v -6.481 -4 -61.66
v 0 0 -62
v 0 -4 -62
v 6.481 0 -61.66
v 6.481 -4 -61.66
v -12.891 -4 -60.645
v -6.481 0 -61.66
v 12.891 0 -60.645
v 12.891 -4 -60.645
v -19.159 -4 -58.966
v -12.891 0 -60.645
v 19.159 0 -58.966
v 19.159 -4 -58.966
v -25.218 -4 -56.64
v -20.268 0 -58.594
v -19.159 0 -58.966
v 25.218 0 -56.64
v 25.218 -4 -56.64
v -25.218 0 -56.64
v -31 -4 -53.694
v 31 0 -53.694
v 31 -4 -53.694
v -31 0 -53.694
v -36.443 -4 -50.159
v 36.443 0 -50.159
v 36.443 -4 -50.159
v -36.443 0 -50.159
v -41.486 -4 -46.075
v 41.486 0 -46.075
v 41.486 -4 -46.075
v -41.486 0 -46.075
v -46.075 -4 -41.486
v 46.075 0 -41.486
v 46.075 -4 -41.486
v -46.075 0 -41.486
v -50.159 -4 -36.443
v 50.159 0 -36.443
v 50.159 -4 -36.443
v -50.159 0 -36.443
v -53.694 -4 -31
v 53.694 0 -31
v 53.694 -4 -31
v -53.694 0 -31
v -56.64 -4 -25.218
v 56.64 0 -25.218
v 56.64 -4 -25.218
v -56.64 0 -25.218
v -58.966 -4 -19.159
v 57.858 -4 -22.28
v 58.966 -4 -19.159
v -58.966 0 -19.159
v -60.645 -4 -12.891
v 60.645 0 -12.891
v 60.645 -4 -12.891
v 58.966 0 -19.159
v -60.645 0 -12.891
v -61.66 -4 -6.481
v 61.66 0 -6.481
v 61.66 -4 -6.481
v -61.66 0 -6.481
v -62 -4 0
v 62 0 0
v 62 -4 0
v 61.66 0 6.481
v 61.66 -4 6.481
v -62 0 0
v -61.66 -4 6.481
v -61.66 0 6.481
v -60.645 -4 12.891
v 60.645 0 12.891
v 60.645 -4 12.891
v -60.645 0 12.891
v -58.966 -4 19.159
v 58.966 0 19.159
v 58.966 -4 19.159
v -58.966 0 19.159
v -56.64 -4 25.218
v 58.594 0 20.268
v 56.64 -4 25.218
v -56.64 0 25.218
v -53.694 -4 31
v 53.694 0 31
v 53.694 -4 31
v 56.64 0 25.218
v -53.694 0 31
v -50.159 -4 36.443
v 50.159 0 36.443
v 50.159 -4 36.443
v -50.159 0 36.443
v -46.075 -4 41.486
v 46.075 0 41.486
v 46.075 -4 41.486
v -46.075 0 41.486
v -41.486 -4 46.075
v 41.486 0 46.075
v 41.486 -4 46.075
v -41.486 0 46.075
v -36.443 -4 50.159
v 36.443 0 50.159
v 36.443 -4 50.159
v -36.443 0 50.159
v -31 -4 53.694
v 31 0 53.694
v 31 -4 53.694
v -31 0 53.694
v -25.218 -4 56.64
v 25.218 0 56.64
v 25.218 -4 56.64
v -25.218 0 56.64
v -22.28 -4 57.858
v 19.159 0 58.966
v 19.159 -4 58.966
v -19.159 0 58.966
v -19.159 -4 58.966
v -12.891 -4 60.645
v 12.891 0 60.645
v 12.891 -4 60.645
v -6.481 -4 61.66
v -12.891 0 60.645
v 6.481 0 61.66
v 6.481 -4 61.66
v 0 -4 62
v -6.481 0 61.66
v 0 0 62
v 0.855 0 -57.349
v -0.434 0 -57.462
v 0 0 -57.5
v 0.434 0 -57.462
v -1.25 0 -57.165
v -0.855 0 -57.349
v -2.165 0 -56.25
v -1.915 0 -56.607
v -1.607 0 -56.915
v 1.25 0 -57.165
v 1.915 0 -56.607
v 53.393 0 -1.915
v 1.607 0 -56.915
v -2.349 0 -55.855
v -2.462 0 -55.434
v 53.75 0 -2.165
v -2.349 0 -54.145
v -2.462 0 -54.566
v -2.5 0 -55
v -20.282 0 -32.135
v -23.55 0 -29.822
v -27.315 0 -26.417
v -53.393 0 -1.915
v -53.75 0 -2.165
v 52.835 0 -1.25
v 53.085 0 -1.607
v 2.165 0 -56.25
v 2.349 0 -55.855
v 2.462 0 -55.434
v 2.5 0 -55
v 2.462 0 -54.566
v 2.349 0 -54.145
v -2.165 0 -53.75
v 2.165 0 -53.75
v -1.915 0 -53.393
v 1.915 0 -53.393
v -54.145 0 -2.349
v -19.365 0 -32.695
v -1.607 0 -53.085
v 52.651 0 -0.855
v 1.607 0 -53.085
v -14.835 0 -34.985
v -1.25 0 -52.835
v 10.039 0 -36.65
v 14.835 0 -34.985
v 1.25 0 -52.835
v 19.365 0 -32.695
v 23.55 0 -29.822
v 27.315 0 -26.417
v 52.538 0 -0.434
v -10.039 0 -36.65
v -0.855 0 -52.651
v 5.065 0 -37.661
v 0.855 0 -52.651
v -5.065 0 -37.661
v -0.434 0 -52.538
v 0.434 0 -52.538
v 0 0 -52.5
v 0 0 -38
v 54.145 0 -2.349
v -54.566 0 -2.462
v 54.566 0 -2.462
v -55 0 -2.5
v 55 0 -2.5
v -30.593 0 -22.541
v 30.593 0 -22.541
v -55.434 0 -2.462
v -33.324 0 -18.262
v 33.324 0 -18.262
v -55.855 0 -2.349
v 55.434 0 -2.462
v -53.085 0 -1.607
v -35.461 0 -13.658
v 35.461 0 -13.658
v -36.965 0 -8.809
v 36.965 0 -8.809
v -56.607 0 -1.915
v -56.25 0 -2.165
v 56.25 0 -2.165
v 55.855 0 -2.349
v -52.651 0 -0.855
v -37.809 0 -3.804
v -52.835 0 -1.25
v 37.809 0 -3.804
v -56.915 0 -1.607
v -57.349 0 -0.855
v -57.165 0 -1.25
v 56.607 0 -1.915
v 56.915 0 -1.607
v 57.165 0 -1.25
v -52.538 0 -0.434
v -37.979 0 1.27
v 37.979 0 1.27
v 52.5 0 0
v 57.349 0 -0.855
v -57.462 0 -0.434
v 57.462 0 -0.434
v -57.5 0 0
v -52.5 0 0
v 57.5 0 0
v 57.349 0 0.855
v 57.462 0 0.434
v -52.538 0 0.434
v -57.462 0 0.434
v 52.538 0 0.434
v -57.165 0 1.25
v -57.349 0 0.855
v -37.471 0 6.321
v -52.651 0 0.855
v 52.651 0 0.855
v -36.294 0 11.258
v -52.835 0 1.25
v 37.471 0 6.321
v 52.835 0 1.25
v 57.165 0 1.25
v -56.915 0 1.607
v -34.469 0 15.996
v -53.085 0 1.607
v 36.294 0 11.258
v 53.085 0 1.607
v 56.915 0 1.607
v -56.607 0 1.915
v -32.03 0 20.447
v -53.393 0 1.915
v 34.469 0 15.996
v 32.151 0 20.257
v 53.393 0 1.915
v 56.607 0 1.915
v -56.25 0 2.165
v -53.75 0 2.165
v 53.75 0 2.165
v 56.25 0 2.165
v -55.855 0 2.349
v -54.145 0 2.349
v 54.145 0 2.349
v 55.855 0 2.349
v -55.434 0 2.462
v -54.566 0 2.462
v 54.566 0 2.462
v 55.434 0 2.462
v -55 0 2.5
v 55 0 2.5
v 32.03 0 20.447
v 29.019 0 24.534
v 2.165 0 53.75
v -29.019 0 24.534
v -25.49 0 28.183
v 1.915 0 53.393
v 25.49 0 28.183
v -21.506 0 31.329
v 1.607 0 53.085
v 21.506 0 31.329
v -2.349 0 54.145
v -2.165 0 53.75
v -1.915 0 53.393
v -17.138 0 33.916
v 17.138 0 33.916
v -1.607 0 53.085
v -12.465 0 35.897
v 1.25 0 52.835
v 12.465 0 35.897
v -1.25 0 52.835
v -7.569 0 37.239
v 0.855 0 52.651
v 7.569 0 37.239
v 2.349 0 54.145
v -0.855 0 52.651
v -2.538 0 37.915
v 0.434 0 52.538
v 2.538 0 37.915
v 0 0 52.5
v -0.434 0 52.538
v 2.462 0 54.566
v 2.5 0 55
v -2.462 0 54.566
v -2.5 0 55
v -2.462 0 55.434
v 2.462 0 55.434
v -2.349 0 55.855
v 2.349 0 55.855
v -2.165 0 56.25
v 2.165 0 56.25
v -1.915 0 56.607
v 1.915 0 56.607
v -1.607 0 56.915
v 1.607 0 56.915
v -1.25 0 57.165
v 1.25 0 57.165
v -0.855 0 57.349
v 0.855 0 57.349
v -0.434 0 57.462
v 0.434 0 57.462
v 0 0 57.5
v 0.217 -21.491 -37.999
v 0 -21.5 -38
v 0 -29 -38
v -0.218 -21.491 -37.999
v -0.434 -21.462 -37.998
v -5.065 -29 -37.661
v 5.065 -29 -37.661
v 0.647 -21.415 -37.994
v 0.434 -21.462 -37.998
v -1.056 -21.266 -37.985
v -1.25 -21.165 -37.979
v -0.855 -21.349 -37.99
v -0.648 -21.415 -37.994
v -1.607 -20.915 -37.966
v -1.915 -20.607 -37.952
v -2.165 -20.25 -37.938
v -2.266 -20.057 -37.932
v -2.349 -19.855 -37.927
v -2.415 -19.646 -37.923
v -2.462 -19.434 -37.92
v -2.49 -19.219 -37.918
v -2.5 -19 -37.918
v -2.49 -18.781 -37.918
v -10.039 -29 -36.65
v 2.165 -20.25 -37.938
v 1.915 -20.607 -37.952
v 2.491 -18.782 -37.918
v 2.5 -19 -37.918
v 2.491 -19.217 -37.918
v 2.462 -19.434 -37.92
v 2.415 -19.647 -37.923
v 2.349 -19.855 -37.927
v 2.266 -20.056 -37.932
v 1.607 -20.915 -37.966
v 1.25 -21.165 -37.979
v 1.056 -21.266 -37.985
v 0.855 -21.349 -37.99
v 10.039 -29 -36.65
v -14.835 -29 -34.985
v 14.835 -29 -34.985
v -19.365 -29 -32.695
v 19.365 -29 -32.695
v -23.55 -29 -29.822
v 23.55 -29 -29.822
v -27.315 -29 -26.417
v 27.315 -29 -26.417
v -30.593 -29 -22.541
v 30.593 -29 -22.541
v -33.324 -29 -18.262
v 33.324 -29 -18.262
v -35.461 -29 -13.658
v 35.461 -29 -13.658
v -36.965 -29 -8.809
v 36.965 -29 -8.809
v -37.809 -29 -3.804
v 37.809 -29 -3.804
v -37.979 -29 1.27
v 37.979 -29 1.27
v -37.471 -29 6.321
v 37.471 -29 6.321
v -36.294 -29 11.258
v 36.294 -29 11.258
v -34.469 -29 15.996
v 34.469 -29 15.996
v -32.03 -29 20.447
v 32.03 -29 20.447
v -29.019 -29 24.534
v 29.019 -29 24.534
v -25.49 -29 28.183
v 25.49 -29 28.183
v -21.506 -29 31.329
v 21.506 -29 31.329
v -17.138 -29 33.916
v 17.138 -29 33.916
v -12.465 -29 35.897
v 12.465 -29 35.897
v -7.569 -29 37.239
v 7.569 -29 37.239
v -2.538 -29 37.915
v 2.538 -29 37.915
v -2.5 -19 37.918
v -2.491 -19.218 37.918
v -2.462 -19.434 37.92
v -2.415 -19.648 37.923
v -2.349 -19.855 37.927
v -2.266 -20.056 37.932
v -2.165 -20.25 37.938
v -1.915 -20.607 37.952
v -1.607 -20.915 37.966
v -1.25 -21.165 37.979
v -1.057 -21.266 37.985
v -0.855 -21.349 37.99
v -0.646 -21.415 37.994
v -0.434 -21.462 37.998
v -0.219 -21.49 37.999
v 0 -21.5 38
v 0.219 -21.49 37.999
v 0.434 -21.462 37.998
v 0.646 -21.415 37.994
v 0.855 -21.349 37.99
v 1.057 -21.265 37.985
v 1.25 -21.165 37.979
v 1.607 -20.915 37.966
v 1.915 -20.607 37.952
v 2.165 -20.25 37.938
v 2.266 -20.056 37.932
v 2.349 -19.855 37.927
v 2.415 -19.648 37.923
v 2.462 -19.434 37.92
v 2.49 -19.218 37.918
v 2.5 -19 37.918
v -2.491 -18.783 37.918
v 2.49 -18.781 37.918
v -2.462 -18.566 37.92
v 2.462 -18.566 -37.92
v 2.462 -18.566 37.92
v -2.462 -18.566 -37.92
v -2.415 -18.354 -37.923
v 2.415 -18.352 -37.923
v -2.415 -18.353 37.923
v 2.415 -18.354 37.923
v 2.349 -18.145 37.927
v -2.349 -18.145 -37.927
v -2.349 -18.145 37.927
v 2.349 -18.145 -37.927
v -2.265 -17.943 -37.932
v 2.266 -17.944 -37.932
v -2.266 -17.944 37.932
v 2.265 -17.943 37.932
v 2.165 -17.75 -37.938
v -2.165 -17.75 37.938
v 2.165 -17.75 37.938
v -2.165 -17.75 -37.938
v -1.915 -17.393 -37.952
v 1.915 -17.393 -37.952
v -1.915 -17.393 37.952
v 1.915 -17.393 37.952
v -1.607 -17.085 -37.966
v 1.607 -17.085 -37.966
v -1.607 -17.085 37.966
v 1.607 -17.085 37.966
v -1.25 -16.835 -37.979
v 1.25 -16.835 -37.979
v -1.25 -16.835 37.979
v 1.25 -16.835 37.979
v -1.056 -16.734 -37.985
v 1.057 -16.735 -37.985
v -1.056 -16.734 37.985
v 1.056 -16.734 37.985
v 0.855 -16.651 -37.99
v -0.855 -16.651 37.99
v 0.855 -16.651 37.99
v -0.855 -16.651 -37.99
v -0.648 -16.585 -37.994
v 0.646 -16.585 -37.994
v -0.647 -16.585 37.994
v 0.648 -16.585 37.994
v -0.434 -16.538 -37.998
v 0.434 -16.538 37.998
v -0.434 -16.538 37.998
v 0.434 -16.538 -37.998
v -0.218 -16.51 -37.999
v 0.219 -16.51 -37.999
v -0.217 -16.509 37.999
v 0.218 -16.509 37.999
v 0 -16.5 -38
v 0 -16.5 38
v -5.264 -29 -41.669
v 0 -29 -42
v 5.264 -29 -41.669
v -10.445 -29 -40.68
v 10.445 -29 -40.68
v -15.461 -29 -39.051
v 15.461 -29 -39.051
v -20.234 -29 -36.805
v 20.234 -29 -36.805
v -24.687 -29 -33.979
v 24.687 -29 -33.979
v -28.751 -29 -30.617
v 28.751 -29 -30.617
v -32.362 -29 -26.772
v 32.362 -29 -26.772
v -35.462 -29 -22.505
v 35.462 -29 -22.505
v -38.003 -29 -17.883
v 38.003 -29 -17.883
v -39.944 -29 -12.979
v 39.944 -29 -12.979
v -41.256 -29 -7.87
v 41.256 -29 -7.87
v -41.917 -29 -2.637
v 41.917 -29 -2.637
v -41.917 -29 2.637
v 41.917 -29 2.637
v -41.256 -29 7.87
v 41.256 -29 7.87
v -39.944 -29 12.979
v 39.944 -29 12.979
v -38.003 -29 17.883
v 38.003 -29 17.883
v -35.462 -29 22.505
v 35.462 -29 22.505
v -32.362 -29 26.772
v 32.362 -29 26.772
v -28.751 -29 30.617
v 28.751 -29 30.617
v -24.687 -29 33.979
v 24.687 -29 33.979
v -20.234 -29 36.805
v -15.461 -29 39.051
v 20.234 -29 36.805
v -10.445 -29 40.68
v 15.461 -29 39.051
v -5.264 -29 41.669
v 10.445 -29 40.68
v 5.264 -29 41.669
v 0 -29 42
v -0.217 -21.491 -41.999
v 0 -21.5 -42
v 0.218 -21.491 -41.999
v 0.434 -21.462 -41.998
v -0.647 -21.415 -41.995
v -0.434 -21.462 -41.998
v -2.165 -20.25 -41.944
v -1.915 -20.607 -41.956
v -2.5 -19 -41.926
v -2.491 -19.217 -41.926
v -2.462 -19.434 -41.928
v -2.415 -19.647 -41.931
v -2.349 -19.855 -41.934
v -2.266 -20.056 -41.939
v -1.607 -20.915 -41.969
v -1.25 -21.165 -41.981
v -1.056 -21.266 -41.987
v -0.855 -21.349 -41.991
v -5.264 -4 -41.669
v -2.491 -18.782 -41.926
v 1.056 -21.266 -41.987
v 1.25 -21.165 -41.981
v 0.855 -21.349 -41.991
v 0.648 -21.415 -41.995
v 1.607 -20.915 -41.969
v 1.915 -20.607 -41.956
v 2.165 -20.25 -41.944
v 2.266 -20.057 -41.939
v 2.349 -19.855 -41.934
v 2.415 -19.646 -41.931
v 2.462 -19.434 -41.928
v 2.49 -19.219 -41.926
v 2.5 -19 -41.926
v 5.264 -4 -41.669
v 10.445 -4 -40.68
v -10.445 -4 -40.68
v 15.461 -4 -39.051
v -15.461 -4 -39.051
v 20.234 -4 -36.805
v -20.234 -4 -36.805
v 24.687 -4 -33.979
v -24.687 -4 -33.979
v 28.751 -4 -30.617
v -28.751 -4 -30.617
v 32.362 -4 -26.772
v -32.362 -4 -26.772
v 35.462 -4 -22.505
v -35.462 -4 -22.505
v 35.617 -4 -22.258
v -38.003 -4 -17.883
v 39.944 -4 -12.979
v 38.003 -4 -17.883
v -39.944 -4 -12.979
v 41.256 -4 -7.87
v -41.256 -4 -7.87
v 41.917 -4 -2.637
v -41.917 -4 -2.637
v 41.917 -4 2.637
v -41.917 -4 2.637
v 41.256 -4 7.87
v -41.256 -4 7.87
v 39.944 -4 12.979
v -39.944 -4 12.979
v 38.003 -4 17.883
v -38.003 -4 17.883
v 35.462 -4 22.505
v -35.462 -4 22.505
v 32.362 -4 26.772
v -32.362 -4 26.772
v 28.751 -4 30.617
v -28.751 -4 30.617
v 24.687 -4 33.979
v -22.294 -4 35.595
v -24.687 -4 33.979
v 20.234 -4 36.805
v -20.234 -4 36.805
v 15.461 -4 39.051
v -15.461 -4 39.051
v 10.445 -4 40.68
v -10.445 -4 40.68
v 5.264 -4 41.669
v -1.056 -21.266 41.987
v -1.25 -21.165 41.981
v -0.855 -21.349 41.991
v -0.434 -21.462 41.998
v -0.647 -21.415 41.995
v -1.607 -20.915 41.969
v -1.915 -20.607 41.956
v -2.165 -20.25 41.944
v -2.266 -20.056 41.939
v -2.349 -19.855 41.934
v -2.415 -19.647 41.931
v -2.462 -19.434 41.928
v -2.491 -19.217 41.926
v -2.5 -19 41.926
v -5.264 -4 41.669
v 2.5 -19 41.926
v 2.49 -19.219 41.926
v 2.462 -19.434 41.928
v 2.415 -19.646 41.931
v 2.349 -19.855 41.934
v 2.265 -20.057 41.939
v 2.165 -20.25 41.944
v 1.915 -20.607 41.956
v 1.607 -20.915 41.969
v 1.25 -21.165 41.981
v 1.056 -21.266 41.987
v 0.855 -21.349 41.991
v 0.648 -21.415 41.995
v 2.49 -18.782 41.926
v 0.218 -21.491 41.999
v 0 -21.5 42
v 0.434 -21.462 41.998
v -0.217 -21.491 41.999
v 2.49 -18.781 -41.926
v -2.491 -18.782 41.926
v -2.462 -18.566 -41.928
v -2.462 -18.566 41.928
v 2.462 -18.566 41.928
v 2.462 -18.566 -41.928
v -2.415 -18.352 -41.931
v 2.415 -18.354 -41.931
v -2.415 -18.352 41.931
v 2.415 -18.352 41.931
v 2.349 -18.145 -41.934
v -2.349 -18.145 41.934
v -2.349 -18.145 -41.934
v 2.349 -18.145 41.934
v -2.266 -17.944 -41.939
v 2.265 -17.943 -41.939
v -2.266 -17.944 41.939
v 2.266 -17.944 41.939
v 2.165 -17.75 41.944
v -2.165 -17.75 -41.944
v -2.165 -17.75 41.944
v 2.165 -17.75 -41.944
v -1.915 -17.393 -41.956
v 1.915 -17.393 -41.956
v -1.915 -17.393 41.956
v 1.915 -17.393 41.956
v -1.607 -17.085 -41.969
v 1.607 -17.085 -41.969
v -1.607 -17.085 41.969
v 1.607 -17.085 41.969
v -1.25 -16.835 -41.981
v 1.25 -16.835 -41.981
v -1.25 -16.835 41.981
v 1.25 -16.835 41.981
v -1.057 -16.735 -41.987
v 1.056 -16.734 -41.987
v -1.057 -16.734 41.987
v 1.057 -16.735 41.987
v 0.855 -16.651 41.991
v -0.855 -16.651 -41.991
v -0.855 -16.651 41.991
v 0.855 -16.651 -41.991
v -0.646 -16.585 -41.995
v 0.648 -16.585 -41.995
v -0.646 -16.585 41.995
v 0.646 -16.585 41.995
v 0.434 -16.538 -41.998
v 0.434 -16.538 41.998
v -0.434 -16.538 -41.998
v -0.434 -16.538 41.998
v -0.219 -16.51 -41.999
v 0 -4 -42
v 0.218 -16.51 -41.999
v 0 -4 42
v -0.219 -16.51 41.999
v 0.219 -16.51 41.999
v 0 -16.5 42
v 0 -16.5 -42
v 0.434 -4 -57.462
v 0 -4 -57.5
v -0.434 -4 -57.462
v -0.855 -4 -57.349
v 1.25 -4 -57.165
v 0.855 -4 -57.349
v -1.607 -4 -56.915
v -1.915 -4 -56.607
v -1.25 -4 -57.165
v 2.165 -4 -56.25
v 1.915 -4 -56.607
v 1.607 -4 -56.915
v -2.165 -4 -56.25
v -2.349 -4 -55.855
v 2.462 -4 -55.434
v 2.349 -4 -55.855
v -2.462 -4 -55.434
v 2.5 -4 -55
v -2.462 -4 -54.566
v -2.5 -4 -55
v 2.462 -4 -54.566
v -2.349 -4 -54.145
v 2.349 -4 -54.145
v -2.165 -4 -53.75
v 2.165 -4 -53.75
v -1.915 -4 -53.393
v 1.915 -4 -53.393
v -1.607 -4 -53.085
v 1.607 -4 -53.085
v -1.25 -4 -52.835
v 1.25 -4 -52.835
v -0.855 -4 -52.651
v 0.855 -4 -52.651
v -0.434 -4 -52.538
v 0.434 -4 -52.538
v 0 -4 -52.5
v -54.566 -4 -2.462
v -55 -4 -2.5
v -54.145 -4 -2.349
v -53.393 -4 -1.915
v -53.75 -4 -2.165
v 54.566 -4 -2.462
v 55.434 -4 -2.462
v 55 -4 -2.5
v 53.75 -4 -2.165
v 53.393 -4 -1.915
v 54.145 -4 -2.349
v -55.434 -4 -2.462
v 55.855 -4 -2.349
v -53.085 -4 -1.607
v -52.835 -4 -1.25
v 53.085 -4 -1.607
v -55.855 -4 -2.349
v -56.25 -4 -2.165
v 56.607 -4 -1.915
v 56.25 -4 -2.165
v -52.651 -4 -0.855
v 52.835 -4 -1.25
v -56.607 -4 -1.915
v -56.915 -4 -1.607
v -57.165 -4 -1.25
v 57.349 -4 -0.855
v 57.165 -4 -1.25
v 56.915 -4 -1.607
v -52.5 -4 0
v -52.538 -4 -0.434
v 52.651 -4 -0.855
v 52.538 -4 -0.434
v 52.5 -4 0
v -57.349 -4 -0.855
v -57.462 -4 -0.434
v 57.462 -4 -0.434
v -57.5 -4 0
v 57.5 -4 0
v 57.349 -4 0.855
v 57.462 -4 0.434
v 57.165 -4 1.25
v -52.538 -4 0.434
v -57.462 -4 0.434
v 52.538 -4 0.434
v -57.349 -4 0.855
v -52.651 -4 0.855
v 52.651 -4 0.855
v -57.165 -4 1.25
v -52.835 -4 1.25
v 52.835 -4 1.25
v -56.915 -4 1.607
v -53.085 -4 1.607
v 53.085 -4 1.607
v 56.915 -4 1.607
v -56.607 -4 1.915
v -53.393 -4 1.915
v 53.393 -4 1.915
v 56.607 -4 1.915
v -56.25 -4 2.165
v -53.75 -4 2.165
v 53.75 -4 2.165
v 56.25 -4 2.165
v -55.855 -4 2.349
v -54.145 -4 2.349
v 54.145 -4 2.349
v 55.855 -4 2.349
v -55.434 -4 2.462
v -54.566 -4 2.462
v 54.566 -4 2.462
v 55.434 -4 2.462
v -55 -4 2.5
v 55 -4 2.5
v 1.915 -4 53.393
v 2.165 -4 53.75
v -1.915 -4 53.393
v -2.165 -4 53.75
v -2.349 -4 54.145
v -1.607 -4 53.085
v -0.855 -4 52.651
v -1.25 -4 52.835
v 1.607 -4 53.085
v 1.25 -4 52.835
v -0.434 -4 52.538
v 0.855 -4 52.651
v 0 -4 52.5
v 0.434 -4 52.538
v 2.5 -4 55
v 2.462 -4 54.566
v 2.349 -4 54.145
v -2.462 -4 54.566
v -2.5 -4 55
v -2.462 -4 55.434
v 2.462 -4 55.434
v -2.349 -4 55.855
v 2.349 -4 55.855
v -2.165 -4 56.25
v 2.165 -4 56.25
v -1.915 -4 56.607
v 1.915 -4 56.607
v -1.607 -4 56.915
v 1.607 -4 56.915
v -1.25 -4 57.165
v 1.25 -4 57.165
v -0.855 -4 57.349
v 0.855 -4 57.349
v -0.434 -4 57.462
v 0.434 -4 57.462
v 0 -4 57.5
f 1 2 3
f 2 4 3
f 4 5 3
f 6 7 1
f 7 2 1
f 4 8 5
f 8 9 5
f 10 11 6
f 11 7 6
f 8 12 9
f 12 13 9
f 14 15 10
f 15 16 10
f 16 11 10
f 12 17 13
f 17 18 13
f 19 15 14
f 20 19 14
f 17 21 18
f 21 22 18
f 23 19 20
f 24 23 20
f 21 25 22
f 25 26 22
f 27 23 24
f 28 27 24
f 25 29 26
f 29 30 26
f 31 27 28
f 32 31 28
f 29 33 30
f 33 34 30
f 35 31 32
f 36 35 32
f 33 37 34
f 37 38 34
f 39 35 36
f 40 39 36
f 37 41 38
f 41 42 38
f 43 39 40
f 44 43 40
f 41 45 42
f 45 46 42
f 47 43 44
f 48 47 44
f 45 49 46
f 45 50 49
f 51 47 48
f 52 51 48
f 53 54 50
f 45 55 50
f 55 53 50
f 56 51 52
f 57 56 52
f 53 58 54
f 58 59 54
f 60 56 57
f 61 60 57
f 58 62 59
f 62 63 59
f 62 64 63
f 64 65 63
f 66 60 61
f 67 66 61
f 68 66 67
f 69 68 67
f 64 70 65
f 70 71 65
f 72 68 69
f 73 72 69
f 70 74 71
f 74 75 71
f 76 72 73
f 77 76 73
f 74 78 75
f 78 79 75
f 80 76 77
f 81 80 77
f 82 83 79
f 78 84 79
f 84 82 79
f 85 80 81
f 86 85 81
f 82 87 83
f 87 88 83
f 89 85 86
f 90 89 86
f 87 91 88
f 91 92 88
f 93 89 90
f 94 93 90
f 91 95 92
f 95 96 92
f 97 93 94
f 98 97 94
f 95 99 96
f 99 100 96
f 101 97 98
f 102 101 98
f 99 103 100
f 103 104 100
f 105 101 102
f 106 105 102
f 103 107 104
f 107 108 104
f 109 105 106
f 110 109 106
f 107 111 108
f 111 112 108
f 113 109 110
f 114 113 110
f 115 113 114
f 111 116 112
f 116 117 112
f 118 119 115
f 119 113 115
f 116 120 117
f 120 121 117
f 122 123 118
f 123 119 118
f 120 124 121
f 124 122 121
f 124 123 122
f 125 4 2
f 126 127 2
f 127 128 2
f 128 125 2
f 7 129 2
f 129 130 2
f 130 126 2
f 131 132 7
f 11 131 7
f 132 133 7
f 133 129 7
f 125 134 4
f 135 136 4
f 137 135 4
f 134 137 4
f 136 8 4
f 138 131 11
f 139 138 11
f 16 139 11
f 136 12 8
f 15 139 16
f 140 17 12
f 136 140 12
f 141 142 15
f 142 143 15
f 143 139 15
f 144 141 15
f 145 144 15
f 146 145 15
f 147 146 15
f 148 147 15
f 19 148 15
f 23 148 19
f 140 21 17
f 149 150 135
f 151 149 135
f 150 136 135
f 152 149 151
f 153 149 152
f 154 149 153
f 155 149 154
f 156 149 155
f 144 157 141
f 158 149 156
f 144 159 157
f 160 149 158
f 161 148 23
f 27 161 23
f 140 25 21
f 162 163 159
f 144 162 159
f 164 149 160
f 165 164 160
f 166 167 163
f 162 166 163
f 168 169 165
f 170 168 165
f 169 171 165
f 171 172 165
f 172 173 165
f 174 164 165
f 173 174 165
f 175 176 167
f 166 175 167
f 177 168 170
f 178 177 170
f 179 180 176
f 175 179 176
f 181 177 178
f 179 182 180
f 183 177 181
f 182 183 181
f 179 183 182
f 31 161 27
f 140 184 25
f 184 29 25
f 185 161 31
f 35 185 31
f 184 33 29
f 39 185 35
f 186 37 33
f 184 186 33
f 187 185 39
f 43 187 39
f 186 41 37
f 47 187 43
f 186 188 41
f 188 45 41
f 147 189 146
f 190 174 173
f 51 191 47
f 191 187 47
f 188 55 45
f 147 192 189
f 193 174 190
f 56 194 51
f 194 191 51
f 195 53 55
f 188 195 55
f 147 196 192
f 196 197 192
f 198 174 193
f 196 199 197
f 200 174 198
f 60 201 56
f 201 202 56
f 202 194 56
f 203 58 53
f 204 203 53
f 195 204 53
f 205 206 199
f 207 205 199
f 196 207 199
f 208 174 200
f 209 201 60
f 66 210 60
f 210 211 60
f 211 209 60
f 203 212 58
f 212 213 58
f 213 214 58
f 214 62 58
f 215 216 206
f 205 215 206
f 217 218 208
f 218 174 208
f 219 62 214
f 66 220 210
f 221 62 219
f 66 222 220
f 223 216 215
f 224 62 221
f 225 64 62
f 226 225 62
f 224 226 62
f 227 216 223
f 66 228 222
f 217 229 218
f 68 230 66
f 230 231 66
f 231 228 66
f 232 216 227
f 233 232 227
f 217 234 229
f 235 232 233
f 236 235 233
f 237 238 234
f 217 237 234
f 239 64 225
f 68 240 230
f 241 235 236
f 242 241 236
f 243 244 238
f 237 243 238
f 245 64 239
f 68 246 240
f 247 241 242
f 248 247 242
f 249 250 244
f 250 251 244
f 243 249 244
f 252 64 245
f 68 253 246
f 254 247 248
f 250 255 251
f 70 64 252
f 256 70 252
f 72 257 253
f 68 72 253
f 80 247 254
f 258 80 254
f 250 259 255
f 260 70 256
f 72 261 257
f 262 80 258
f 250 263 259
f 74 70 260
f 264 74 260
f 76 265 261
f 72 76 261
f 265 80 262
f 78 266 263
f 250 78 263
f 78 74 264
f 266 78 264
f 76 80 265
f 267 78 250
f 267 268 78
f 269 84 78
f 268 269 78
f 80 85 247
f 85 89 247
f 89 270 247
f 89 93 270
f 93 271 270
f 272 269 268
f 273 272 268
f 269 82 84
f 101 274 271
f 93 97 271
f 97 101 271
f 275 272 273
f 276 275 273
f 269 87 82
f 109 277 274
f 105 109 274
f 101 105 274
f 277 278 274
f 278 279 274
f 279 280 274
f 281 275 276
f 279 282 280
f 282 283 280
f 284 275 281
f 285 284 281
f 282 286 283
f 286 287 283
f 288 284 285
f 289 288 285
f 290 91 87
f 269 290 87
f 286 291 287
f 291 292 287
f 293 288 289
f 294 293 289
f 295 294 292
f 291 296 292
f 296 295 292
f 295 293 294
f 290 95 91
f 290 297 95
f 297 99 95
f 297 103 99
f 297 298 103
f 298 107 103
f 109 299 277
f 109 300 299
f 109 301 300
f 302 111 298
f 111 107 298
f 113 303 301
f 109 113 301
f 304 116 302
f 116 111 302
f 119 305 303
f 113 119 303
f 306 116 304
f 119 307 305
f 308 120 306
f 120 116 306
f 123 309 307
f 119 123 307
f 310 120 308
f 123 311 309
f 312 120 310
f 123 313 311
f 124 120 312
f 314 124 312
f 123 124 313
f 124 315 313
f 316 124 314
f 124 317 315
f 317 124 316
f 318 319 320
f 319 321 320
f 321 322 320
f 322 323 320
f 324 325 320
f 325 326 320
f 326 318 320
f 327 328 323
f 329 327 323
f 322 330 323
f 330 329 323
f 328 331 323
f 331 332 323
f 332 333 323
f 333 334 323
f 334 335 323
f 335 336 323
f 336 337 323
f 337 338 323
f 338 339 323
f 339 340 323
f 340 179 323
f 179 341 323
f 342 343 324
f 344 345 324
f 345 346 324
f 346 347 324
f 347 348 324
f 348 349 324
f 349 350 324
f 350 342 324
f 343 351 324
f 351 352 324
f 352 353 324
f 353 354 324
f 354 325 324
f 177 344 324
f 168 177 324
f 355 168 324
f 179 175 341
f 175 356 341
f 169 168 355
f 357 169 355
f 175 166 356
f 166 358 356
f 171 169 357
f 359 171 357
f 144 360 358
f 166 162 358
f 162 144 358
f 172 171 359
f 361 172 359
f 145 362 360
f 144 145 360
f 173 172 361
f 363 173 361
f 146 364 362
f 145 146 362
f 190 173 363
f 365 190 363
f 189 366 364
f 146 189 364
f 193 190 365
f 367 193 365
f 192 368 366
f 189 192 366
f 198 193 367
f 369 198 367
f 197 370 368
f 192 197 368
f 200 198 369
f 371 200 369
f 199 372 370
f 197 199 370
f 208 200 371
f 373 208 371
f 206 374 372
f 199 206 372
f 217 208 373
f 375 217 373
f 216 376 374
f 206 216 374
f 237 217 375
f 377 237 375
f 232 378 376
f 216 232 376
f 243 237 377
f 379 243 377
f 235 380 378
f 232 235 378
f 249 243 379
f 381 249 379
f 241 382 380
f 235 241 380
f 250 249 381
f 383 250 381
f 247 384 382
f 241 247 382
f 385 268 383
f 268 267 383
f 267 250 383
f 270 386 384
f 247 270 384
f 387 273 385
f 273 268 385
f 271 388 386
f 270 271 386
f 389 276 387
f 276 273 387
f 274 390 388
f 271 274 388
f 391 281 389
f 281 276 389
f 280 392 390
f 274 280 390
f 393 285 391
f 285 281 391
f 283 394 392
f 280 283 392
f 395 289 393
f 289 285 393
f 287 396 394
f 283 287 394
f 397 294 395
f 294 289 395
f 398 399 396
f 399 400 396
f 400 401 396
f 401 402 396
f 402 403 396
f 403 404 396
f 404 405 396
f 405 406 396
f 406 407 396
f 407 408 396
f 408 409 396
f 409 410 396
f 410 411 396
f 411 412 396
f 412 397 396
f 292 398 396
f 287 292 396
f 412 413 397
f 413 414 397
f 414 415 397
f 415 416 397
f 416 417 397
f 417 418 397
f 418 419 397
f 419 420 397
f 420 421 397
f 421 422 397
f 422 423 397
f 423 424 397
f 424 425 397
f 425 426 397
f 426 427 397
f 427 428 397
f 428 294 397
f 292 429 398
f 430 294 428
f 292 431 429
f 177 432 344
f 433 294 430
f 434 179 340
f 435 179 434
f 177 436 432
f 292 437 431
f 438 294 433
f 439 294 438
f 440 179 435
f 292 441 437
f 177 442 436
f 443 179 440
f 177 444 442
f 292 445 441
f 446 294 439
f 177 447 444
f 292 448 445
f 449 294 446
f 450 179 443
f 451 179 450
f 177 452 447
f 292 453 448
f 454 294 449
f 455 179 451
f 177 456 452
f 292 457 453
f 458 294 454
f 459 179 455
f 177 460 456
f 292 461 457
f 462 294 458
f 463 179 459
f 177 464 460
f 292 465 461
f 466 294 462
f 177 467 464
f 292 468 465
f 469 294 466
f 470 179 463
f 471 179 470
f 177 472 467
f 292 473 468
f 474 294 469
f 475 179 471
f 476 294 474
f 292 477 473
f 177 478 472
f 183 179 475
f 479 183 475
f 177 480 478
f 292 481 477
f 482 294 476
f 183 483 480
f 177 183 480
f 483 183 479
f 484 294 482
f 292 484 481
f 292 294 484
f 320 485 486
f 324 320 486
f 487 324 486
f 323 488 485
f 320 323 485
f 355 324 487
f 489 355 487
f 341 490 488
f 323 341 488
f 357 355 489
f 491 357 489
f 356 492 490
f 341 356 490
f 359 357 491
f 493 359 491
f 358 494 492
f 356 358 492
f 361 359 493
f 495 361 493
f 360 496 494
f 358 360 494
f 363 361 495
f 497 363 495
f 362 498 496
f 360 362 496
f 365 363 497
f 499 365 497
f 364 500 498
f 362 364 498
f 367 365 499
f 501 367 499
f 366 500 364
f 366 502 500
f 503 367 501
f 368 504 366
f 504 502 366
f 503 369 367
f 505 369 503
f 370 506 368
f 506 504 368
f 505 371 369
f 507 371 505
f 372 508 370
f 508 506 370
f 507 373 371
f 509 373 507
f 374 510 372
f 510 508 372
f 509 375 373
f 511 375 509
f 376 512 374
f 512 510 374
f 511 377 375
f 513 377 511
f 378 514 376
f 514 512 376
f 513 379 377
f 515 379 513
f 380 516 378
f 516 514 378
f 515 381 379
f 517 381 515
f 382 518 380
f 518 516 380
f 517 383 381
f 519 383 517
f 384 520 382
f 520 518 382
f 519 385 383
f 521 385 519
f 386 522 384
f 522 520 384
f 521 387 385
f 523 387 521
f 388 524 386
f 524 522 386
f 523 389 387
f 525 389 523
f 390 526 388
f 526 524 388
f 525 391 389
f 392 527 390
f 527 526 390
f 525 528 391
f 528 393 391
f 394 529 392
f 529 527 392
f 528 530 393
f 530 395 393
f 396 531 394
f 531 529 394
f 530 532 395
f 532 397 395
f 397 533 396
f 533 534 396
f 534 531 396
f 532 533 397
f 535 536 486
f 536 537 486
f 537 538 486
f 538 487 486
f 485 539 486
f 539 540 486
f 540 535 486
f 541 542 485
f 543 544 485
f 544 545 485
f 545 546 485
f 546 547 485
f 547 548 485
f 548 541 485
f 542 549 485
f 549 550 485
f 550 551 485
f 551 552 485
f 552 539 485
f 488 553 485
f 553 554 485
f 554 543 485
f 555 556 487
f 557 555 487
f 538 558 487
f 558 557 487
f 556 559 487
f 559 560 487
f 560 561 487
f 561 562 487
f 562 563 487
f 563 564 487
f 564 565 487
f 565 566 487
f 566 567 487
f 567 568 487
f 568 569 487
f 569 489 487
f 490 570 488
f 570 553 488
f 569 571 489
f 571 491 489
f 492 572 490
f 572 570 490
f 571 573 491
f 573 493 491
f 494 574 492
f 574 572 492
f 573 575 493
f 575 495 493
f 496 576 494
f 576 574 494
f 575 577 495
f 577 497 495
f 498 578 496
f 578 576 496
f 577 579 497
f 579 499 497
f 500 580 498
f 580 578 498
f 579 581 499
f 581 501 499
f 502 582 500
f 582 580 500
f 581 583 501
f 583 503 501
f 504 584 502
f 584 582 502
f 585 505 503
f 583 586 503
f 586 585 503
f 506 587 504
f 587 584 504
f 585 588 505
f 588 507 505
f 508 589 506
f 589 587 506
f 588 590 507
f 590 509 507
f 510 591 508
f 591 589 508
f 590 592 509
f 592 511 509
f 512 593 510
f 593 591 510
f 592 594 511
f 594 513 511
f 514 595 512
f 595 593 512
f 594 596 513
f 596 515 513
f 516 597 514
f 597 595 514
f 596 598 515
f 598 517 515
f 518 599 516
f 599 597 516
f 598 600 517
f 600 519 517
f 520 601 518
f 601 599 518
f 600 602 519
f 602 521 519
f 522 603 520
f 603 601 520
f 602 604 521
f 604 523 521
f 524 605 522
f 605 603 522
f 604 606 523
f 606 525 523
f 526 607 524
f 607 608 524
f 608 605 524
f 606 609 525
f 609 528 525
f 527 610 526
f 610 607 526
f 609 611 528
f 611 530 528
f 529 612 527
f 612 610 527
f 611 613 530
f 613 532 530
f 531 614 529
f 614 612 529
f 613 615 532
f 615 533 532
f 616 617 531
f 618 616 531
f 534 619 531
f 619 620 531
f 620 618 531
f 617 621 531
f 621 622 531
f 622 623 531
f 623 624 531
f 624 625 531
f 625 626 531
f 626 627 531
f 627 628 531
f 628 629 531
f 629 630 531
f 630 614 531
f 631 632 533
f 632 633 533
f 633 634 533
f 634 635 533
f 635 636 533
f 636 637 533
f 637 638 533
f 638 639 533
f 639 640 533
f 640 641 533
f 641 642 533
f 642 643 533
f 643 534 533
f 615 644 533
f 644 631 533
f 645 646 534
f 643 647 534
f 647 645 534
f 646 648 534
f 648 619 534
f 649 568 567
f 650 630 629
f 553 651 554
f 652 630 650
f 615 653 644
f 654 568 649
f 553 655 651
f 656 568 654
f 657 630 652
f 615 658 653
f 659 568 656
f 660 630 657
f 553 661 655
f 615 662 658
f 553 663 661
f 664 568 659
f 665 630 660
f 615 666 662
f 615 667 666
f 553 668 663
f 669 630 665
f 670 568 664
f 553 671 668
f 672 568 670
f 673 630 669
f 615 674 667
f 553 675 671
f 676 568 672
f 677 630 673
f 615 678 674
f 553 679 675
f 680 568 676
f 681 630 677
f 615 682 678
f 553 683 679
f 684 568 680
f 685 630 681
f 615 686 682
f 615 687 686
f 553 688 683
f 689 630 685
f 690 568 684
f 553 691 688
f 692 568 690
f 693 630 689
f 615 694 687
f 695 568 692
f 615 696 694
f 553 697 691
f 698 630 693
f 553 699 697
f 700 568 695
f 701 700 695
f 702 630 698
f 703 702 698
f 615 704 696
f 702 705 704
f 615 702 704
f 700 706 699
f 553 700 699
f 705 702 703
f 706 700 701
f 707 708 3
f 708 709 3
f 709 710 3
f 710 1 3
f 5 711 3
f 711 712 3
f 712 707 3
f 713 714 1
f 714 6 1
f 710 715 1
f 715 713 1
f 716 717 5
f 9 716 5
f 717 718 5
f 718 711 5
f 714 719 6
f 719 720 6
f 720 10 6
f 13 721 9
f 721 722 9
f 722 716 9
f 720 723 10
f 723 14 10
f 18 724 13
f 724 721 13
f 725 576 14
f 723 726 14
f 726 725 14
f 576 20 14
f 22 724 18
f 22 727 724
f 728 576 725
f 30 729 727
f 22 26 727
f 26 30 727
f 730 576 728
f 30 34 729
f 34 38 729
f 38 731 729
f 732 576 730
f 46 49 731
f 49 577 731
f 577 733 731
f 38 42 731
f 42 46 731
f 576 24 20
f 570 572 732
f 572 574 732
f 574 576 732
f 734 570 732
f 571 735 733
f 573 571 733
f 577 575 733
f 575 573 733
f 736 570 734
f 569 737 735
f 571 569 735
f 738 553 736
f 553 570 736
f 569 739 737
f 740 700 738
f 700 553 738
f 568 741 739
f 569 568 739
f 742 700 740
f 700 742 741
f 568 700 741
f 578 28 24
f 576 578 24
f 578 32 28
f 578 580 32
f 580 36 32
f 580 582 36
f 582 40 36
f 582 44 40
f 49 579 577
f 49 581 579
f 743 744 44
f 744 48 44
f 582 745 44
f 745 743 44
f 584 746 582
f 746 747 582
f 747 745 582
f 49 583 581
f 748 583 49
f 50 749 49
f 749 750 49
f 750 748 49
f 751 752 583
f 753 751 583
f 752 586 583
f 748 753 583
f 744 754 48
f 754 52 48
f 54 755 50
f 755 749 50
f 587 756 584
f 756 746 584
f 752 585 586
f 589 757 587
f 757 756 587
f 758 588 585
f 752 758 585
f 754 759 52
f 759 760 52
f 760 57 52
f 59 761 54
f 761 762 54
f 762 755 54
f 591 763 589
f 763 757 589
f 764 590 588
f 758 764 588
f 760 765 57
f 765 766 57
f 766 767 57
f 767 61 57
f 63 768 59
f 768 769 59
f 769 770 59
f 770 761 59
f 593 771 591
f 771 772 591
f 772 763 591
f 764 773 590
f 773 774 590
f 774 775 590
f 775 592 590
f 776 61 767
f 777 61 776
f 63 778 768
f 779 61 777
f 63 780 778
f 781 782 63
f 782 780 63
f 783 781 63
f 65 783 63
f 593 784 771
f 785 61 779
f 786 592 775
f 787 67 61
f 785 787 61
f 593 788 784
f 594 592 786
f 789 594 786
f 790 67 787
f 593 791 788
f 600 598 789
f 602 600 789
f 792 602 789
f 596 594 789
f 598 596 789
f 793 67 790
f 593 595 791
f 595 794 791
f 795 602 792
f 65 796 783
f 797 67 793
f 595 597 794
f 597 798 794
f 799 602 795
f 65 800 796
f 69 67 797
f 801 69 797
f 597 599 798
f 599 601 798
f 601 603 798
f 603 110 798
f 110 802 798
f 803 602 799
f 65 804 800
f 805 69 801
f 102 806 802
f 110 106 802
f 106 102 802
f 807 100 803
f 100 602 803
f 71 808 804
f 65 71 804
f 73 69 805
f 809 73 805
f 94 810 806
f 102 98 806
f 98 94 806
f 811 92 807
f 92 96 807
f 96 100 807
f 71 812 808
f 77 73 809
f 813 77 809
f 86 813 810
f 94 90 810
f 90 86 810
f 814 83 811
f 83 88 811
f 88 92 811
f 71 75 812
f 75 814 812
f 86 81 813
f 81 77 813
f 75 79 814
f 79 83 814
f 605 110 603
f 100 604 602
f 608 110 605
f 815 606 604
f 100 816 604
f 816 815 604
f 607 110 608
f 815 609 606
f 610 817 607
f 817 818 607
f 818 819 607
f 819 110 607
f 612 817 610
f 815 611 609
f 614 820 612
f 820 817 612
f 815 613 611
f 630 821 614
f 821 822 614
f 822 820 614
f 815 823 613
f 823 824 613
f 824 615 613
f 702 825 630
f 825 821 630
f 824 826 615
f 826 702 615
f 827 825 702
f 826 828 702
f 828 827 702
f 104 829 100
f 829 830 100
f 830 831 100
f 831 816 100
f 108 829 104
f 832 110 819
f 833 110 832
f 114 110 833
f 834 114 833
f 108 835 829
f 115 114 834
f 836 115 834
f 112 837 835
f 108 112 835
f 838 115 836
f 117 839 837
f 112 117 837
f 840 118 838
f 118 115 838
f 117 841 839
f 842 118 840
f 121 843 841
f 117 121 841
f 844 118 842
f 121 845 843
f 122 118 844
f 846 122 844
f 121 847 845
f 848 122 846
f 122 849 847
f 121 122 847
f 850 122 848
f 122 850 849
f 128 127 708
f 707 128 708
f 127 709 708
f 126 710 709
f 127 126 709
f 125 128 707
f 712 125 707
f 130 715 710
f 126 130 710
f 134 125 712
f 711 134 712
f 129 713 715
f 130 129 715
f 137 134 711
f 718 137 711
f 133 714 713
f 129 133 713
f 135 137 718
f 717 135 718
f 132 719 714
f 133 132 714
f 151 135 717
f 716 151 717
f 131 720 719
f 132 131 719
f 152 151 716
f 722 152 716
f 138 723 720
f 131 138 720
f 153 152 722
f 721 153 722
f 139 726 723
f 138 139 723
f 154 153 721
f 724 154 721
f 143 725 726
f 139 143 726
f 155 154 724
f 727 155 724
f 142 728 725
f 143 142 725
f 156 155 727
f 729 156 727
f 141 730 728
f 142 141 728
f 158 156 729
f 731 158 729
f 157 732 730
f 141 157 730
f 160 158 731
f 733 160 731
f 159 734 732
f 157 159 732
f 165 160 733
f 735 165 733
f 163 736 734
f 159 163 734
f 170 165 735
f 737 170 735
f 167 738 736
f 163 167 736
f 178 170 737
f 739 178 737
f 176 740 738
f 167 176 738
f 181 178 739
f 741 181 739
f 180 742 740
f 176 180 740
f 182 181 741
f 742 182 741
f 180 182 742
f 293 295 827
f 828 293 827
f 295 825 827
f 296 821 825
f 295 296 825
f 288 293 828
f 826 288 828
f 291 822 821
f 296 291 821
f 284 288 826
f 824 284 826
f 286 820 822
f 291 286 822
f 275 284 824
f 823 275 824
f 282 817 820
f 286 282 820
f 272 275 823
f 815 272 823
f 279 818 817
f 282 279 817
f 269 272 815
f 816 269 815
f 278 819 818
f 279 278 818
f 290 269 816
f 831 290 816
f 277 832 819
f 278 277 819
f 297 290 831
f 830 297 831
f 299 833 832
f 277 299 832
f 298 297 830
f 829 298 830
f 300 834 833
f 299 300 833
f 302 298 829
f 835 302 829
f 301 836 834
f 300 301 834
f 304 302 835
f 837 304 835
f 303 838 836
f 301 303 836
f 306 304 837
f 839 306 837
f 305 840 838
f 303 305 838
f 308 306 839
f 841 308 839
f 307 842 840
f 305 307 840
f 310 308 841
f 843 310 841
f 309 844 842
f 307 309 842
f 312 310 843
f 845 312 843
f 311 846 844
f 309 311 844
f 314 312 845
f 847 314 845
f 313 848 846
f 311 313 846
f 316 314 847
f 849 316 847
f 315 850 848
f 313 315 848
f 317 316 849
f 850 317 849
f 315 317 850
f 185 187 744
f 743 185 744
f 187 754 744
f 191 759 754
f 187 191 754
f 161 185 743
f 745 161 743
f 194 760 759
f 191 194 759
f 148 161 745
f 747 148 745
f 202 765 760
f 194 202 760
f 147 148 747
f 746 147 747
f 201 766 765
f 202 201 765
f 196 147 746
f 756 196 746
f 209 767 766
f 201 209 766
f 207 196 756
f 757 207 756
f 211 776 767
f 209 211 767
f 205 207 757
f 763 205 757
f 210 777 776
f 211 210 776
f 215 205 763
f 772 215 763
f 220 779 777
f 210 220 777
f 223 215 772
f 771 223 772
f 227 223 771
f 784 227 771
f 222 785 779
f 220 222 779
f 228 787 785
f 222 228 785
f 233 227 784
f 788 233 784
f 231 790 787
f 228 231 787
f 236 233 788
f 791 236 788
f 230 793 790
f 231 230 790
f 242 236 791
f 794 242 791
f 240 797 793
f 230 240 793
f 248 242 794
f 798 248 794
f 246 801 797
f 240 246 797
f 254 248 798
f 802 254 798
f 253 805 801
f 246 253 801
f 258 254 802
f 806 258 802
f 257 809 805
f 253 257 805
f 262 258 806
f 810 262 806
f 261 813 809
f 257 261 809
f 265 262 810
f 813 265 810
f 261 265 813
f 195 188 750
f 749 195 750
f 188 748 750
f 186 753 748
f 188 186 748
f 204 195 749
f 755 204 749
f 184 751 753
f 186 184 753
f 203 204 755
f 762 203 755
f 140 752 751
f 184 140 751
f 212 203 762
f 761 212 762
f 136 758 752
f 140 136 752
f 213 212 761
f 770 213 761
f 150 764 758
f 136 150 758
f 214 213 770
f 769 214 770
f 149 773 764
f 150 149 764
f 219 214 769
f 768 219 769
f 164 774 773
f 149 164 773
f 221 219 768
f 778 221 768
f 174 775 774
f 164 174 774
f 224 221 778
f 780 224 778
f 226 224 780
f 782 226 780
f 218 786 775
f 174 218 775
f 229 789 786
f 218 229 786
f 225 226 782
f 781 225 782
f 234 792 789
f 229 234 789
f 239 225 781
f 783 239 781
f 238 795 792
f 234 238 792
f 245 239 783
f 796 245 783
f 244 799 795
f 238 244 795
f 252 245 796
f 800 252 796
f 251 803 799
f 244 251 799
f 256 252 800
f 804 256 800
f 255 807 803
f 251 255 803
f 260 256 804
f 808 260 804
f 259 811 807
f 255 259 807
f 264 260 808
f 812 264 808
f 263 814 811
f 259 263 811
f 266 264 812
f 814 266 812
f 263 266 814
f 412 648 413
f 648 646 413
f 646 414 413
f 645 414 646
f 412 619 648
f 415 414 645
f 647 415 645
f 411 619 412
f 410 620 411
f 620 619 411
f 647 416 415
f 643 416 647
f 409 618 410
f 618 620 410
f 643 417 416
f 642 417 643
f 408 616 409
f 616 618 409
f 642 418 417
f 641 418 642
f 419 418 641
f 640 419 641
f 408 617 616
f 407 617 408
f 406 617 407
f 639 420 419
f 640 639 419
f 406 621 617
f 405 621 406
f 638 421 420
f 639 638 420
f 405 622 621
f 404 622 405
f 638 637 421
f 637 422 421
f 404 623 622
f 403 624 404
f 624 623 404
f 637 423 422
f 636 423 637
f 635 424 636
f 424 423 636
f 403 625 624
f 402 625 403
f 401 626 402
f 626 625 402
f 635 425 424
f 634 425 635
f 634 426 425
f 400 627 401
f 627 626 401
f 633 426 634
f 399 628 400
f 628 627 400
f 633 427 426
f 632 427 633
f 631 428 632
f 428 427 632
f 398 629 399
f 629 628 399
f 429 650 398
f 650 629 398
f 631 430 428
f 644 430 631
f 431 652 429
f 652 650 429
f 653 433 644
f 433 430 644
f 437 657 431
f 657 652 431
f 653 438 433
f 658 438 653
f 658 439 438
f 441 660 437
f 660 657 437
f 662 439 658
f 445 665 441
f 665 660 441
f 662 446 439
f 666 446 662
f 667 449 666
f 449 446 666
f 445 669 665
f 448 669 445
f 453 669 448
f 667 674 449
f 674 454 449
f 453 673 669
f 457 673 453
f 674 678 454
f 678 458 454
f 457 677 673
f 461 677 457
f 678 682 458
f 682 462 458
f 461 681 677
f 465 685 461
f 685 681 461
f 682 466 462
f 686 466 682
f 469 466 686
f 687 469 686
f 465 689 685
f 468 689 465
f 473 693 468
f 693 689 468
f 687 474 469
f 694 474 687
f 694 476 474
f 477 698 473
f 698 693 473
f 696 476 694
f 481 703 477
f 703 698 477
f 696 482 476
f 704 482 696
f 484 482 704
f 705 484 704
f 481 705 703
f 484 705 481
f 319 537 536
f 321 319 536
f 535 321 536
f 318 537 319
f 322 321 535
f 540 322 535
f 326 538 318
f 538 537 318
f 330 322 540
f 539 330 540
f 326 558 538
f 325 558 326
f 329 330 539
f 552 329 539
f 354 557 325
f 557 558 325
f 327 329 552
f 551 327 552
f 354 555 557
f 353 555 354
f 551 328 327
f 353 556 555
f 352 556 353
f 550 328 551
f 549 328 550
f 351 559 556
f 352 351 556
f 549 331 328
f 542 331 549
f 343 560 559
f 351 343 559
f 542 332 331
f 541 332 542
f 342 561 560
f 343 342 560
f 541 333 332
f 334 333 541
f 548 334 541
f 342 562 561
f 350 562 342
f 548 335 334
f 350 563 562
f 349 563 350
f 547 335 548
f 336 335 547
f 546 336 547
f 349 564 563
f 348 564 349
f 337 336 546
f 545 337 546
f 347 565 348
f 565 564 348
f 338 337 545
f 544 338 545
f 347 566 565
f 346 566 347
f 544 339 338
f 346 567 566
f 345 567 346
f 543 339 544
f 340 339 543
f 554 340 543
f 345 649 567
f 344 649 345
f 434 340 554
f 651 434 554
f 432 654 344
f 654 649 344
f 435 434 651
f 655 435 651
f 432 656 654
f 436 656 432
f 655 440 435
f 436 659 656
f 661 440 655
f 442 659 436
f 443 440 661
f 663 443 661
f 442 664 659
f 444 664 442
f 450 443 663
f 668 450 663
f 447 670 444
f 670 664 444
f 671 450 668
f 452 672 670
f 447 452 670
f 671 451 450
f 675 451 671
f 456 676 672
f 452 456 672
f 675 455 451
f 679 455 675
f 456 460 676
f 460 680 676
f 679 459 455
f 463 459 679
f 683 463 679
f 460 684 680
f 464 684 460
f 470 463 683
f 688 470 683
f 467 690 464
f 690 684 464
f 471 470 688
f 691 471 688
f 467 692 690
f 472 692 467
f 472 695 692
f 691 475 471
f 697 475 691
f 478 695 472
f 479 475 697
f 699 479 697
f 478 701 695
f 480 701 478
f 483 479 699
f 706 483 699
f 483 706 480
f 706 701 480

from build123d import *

# Parameters (mm, degrees)
SKETCH2_R               = 2.5
CUT_EXTRUDE3_DEPTH      = 92.175654645
CUT_EXTRUDE6_DEPTH      = 93.352585237
CUT_EXTRUDE6_DEPTH_BACK = 93.352585237
SKETCH6_R               = 2.5


with BuildPart() as part:
    # Sketch1 → Revolve1 (revolve)
    with BuildSketch(Plane.XY, mode=Mode.PRIVATE) as revolve1_sk:
        Polygon((-42, -29), (-42, -4), (-62, -4), (-62, 0), (-38, 0), (-38, -29), align=None)
    revolve(revolve1_sk.sketch.rotate(Axis((0, -100.5, 0), (0, 1, 0)), 270), axis=Axis((0, -100.5, 0), (0, 1, 0)))

    # Sketch2 → Cut-Extrude3 (cut, through all)
    with BuildSketch(Plane.XZ.offset(4)):
        with Locations(Location((55, 0, 0), (0, 0, 270))):
            Circle(SKETCH2_R)
        with Locations(Location((-55, 0, 0), (0, 0, 270))):
            Circle(SKETCH2_R)
        with Locations(Location((0, 55, 0), (0, 0, 270))):
            Circle(SKETCH2_R)
        with Locations(Location((0, -55, 0), (0, 0, 270))):
            Circle(SKETCH2_R)
    extrude(amount=-CUT_EXTRUDE3_DEPTH, mode=Mode.SUBTRACT)

    # Sketch6 → Cut-Extrude6 (cut, two sides: drawn at the far end of the back side and taken through both)
    with BuildSketch(Plane.XY.offset(-CUT_EXTRUDE6_DEPTH_BACK)):
        with Locations((0, -19)):
            Circle(SKETCH6_R)
    extrude(amount=CUT_EXTRUDE6_DEPTH + CUT_EXTRUDE6_DEPTH_BACK, mode=Mode.SUBTRACT)


solid = part.part
